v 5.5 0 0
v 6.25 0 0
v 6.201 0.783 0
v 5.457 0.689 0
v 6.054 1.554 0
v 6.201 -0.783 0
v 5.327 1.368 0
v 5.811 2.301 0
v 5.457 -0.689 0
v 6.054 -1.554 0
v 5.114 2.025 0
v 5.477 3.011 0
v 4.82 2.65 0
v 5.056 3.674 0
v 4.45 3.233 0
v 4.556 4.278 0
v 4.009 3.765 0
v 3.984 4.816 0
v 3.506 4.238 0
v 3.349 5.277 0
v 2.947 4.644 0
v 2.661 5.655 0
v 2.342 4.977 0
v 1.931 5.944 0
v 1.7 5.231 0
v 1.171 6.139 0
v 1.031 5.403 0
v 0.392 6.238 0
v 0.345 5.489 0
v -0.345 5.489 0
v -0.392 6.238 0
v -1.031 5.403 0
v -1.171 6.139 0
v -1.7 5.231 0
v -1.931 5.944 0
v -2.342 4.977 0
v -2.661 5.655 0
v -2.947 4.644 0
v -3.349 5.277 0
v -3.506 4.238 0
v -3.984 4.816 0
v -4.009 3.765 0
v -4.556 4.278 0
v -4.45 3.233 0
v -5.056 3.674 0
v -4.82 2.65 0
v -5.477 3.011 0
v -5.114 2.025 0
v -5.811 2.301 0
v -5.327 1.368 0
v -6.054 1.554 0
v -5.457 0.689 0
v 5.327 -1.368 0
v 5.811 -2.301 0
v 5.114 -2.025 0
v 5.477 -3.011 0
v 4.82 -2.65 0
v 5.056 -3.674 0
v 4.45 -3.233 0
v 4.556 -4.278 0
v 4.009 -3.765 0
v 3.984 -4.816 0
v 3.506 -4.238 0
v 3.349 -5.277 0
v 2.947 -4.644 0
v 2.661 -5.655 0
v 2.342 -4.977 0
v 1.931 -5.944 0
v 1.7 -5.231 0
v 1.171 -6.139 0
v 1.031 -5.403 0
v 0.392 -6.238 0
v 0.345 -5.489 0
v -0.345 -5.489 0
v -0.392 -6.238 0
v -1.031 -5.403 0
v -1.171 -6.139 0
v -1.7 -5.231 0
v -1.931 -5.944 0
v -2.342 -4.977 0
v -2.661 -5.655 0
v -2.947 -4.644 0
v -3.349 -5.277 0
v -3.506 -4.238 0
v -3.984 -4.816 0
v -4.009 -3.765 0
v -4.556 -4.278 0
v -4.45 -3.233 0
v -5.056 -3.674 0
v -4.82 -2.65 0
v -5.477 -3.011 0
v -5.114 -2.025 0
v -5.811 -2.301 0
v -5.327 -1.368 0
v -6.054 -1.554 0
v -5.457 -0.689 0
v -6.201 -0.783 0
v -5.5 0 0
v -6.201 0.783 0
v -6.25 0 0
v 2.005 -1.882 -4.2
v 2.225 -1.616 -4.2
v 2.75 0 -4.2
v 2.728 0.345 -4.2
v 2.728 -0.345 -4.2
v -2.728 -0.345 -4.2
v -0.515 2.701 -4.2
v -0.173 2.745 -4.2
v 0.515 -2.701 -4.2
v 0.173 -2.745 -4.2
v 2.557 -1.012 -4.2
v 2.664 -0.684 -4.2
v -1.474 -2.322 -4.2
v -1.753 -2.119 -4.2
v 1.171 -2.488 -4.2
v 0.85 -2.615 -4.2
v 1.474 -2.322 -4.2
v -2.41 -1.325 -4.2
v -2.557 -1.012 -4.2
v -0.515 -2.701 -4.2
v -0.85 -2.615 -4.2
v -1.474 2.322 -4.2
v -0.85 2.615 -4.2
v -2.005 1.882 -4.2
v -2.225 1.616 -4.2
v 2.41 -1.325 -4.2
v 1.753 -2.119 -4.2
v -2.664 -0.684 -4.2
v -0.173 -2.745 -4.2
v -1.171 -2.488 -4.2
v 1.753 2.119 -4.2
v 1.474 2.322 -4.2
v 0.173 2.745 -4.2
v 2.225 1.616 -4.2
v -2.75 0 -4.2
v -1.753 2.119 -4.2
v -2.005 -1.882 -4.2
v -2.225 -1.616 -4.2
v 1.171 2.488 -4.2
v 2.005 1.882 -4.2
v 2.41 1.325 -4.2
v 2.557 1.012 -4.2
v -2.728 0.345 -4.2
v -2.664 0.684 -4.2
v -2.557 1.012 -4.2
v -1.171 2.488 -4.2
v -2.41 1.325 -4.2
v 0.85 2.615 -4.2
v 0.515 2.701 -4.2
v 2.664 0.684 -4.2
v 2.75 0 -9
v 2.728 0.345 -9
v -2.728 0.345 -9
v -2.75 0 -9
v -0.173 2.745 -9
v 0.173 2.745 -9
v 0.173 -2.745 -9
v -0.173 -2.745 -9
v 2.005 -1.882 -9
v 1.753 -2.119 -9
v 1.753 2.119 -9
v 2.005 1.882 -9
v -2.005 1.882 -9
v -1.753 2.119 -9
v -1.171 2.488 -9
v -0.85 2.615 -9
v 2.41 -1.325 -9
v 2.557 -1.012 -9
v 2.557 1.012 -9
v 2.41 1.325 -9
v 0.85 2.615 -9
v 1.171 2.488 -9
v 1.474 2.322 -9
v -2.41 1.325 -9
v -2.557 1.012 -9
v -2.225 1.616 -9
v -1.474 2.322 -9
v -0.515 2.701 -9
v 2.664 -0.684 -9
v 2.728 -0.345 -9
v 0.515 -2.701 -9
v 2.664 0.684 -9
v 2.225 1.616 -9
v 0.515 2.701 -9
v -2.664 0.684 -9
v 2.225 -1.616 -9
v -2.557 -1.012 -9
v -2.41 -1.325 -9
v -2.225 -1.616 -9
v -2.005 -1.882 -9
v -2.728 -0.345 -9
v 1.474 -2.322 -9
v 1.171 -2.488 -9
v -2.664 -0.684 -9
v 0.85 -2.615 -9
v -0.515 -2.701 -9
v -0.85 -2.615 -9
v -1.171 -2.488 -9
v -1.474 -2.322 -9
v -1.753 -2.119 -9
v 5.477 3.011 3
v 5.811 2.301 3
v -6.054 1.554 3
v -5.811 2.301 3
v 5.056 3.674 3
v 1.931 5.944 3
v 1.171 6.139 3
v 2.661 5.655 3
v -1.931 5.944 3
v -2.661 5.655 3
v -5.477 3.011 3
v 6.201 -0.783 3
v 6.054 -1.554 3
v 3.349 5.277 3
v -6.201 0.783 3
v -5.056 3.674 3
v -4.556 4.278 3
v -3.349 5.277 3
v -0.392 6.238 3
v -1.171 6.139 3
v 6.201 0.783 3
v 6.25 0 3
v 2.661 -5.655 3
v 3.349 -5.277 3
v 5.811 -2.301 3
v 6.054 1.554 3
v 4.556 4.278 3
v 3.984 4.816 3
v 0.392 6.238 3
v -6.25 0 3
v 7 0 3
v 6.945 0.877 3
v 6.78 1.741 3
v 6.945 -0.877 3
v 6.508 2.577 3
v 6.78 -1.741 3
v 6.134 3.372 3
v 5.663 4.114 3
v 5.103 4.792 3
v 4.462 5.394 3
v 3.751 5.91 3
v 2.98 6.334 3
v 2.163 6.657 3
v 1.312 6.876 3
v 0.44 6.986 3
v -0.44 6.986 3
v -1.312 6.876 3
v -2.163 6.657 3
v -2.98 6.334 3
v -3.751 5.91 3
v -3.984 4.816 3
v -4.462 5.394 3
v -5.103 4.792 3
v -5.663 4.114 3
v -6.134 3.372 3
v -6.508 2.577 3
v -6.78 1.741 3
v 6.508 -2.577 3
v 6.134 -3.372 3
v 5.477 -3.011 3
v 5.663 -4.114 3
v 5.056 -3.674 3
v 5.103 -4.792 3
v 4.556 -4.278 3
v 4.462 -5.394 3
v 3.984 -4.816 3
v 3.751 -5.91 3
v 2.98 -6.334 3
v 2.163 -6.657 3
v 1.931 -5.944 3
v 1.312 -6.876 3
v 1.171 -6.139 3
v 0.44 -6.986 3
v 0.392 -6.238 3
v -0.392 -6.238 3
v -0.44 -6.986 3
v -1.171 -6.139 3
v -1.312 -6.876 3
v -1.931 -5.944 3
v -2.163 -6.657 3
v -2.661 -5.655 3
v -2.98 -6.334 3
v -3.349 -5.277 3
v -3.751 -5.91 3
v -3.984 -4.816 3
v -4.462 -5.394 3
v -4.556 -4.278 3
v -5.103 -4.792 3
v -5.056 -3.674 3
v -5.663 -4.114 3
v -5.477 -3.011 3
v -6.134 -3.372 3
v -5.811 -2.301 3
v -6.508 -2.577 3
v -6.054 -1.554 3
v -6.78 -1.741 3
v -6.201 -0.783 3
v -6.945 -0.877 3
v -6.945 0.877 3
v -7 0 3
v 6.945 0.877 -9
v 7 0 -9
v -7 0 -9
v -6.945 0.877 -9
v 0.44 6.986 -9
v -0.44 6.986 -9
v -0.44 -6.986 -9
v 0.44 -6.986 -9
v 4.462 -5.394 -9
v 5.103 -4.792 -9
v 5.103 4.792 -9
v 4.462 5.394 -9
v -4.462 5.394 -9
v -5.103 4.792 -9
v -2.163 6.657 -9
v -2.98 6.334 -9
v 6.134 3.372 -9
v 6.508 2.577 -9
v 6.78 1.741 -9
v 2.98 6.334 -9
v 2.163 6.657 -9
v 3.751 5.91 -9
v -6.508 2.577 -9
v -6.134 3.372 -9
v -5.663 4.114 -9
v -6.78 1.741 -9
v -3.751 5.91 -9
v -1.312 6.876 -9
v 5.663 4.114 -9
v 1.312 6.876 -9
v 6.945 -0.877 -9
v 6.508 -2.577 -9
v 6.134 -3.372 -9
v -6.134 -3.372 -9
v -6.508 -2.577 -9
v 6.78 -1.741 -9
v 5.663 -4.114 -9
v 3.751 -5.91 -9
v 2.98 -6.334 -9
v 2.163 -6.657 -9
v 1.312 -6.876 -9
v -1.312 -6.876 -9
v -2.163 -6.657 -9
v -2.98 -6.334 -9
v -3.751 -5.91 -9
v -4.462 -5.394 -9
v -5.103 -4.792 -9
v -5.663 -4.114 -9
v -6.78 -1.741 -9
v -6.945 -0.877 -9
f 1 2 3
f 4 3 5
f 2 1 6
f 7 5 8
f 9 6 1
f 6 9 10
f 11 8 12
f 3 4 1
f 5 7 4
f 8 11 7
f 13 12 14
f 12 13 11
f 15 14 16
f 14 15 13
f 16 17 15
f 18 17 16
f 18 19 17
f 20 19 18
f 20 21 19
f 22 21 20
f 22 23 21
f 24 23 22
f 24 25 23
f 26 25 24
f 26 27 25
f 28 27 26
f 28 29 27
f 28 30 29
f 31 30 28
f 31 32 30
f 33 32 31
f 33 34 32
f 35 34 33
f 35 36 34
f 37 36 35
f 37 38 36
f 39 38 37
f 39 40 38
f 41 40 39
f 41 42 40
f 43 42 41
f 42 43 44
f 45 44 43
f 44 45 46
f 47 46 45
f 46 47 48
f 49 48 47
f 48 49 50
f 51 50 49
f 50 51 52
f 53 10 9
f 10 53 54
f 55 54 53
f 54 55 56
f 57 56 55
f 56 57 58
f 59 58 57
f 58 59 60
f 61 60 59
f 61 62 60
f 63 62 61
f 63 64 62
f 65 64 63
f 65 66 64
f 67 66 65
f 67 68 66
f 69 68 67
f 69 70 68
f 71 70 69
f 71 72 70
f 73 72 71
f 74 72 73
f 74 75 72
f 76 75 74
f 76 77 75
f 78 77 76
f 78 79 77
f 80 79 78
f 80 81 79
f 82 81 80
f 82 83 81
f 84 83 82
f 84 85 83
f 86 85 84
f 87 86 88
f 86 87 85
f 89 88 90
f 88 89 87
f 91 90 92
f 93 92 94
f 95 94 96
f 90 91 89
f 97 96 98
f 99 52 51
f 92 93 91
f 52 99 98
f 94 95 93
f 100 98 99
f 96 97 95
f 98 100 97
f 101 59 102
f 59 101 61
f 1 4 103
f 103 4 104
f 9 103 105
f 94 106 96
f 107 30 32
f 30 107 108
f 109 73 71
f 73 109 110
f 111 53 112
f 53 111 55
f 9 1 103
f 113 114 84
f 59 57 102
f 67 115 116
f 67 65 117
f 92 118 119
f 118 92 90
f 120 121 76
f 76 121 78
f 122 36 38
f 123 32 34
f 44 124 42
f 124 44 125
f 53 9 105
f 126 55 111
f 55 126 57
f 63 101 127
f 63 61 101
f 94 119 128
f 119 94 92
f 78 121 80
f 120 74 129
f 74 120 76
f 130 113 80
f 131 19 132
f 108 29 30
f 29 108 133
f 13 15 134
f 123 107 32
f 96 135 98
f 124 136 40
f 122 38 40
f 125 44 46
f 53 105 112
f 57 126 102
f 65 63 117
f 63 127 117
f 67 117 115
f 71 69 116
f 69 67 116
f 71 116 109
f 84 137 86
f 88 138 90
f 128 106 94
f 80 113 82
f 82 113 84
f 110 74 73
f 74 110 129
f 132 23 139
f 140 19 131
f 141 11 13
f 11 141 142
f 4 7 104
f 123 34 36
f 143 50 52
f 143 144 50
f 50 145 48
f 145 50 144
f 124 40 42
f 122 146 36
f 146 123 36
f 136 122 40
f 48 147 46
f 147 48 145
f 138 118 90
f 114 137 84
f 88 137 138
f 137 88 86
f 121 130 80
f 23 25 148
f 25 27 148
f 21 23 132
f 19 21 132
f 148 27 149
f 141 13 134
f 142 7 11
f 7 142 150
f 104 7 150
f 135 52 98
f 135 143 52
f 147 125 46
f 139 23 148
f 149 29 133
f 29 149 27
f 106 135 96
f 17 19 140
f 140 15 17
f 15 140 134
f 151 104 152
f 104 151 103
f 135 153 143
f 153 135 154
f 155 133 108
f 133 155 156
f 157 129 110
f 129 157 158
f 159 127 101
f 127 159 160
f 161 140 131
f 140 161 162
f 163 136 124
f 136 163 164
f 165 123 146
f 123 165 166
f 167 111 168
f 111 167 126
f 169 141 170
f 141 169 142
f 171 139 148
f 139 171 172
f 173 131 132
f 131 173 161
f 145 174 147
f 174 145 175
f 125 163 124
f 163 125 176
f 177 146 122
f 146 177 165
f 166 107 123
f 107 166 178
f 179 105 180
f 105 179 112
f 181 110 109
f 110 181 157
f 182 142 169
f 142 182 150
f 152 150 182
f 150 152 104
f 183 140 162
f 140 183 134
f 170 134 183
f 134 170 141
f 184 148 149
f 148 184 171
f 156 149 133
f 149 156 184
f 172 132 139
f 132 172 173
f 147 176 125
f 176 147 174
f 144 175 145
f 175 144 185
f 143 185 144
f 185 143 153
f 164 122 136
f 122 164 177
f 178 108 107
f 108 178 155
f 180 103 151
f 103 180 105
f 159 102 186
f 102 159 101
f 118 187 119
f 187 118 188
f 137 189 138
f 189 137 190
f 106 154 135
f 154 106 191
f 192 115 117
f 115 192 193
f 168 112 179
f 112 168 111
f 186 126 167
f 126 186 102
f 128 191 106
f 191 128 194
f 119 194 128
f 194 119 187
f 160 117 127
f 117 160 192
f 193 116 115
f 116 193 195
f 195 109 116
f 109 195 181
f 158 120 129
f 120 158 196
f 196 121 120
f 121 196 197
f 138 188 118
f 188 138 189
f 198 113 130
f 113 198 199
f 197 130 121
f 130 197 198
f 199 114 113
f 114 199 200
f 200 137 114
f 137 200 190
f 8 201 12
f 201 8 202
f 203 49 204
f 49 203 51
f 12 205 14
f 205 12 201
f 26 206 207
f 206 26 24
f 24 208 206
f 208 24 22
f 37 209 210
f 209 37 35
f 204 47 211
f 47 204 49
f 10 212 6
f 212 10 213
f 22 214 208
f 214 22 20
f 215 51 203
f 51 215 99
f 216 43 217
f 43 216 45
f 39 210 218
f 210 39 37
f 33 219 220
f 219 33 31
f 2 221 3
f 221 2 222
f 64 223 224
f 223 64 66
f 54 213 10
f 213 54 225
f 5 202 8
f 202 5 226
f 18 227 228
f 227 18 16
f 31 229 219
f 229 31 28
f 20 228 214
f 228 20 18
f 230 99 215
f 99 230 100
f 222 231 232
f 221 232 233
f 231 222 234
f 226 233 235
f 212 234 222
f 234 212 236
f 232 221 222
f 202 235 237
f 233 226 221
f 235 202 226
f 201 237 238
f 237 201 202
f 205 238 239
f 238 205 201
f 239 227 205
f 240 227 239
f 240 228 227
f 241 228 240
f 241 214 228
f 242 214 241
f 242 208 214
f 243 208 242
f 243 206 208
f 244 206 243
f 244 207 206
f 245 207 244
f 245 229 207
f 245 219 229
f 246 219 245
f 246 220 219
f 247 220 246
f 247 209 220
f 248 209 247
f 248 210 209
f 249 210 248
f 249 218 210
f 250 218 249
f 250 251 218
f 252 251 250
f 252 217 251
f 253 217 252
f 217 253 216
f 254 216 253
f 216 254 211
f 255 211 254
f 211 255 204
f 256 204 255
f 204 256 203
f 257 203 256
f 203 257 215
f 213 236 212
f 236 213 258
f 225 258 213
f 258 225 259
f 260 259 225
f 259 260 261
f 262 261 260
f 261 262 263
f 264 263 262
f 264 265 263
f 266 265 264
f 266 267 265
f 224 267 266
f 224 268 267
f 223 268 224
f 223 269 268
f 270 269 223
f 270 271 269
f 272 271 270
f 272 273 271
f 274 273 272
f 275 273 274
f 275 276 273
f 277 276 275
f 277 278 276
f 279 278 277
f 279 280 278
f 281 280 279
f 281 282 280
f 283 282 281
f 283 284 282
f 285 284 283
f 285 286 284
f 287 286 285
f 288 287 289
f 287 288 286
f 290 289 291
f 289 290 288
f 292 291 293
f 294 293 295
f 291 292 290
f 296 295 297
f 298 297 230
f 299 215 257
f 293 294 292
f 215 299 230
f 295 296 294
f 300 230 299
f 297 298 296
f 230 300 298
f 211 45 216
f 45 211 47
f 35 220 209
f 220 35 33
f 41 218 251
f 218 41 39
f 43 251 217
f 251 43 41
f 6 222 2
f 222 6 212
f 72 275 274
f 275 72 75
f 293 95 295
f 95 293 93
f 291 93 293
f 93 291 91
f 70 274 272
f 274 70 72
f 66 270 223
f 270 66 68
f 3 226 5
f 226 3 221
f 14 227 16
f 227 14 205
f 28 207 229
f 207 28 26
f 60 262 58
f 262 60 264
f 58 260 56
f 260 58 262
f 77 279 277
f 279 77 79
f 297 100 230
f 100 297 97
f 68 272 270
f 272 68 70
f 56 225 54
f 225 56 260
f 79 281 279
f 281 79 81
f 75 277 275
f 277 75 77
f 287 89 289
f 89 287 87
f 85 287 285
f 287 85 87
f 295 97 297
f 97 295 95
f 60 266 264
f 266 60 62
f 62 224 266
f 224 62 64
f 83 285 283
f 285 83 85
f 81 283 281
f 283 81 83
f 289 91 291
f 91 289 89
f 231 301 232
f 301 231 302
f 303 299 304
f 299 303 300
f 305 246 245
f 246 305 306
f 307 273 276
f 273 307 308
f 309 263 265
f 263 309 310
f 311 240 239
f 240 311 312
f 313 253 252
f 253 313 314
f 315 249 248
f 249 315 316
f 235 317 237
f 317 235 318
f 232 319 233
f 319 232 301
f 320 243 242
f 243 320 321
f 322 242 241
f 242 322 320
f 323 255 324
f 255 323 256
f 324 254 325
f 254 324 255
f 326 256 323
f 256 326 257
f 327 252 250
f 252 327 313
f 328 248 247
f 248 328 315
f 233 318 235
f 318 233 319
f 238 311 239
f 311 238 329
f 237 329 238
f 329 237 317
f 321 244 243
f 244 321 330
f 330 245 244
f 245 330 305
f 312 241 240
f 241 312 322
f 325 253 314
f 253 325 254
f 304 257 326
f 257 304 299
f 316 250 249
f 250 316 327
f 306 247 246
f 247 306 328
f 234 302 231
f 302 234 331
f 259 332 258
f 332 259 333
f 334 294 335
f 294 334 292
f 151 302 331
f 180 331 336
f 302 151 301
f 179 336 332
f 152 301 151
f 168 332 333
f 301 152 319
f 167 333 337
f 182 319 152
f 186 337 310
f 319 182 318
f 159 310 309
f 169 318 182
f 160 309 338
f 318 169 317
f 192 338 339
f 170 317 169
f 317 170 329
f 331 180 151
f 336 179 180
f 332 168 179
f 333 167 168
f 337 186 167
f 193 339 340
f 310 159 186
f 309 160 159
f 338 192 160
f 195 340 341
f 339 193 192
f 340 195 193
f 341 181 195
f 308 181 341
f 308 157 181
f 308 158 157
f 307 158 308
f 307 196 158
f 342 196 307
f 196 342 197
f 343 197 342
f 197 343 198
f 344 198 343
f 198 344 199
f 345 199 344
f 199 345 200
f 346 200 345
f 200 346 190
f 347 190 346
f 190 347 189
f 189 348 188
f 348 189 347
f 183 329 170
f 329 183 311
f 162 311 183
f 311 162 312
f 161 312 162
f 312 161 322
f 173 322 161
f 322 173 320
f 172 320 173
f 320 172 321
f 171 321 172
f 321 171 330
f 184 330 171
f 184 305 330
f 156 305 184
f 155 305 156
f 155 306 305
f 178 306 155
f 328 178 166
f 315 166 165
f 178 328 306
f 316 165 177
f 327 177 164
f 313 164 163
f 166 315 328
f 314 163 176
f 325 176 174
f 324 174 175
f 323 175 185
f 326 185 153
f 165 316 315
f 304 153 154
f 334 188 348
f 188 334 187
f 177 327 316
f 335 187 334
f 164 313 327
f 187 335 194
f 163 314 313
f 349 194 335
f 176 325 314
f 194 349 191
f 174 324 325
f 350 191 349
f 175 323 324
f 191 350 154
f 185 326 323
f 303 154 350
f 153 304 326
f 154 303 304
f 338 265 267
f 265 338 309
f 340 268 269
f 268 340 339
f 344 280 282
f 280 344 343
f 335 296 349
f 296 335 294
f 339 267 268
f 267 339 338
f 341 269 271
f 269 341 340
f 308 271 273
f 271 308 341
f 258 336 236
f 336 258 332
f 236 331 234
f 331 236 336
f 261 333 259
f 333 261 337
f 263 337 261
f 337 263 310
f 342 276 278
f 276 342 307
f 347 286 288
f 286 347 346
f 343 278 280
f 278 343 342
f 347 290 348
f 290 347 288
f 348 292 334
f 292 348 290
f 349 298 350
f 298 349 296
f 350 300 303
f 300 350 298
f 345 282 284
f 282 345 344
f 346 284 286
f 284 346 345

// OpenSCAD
$fn = 50;


difference() {
	union() {
		translate(v = [0, 0, -9.0000000000]) {
			cylinder(h = 12, r = 7.0000000000);
		}
	}
	union() {
		translate(v = [0, 0, 0]) {
			rotate(a = [0, 0, 0]) {
				difference() {
					union() {
						translate(v = [0, 0, -12.0000000000]) {
							cylinder(h = 12, r = 2.2500000000);
						}
						translate(v = [0, 0, -4.2000000000]) {
							cylinder(h = 4.2000000000, r1 = 2.7500000000, r2 = 5.5000000000);
						}
						translate(v = [0, 0, -12.0000000000]) {
							cylinder(h = 12, r = 2.7500000000);
						}
						translate(v = [0, 0, -12.0000000000]) {
							cylinder(h = 12, r = 2.2500000000);
						}
					}
					union();
				}
			}
		}
		#cylinder(h = 3, r = 6.2500000000);
	}
}
